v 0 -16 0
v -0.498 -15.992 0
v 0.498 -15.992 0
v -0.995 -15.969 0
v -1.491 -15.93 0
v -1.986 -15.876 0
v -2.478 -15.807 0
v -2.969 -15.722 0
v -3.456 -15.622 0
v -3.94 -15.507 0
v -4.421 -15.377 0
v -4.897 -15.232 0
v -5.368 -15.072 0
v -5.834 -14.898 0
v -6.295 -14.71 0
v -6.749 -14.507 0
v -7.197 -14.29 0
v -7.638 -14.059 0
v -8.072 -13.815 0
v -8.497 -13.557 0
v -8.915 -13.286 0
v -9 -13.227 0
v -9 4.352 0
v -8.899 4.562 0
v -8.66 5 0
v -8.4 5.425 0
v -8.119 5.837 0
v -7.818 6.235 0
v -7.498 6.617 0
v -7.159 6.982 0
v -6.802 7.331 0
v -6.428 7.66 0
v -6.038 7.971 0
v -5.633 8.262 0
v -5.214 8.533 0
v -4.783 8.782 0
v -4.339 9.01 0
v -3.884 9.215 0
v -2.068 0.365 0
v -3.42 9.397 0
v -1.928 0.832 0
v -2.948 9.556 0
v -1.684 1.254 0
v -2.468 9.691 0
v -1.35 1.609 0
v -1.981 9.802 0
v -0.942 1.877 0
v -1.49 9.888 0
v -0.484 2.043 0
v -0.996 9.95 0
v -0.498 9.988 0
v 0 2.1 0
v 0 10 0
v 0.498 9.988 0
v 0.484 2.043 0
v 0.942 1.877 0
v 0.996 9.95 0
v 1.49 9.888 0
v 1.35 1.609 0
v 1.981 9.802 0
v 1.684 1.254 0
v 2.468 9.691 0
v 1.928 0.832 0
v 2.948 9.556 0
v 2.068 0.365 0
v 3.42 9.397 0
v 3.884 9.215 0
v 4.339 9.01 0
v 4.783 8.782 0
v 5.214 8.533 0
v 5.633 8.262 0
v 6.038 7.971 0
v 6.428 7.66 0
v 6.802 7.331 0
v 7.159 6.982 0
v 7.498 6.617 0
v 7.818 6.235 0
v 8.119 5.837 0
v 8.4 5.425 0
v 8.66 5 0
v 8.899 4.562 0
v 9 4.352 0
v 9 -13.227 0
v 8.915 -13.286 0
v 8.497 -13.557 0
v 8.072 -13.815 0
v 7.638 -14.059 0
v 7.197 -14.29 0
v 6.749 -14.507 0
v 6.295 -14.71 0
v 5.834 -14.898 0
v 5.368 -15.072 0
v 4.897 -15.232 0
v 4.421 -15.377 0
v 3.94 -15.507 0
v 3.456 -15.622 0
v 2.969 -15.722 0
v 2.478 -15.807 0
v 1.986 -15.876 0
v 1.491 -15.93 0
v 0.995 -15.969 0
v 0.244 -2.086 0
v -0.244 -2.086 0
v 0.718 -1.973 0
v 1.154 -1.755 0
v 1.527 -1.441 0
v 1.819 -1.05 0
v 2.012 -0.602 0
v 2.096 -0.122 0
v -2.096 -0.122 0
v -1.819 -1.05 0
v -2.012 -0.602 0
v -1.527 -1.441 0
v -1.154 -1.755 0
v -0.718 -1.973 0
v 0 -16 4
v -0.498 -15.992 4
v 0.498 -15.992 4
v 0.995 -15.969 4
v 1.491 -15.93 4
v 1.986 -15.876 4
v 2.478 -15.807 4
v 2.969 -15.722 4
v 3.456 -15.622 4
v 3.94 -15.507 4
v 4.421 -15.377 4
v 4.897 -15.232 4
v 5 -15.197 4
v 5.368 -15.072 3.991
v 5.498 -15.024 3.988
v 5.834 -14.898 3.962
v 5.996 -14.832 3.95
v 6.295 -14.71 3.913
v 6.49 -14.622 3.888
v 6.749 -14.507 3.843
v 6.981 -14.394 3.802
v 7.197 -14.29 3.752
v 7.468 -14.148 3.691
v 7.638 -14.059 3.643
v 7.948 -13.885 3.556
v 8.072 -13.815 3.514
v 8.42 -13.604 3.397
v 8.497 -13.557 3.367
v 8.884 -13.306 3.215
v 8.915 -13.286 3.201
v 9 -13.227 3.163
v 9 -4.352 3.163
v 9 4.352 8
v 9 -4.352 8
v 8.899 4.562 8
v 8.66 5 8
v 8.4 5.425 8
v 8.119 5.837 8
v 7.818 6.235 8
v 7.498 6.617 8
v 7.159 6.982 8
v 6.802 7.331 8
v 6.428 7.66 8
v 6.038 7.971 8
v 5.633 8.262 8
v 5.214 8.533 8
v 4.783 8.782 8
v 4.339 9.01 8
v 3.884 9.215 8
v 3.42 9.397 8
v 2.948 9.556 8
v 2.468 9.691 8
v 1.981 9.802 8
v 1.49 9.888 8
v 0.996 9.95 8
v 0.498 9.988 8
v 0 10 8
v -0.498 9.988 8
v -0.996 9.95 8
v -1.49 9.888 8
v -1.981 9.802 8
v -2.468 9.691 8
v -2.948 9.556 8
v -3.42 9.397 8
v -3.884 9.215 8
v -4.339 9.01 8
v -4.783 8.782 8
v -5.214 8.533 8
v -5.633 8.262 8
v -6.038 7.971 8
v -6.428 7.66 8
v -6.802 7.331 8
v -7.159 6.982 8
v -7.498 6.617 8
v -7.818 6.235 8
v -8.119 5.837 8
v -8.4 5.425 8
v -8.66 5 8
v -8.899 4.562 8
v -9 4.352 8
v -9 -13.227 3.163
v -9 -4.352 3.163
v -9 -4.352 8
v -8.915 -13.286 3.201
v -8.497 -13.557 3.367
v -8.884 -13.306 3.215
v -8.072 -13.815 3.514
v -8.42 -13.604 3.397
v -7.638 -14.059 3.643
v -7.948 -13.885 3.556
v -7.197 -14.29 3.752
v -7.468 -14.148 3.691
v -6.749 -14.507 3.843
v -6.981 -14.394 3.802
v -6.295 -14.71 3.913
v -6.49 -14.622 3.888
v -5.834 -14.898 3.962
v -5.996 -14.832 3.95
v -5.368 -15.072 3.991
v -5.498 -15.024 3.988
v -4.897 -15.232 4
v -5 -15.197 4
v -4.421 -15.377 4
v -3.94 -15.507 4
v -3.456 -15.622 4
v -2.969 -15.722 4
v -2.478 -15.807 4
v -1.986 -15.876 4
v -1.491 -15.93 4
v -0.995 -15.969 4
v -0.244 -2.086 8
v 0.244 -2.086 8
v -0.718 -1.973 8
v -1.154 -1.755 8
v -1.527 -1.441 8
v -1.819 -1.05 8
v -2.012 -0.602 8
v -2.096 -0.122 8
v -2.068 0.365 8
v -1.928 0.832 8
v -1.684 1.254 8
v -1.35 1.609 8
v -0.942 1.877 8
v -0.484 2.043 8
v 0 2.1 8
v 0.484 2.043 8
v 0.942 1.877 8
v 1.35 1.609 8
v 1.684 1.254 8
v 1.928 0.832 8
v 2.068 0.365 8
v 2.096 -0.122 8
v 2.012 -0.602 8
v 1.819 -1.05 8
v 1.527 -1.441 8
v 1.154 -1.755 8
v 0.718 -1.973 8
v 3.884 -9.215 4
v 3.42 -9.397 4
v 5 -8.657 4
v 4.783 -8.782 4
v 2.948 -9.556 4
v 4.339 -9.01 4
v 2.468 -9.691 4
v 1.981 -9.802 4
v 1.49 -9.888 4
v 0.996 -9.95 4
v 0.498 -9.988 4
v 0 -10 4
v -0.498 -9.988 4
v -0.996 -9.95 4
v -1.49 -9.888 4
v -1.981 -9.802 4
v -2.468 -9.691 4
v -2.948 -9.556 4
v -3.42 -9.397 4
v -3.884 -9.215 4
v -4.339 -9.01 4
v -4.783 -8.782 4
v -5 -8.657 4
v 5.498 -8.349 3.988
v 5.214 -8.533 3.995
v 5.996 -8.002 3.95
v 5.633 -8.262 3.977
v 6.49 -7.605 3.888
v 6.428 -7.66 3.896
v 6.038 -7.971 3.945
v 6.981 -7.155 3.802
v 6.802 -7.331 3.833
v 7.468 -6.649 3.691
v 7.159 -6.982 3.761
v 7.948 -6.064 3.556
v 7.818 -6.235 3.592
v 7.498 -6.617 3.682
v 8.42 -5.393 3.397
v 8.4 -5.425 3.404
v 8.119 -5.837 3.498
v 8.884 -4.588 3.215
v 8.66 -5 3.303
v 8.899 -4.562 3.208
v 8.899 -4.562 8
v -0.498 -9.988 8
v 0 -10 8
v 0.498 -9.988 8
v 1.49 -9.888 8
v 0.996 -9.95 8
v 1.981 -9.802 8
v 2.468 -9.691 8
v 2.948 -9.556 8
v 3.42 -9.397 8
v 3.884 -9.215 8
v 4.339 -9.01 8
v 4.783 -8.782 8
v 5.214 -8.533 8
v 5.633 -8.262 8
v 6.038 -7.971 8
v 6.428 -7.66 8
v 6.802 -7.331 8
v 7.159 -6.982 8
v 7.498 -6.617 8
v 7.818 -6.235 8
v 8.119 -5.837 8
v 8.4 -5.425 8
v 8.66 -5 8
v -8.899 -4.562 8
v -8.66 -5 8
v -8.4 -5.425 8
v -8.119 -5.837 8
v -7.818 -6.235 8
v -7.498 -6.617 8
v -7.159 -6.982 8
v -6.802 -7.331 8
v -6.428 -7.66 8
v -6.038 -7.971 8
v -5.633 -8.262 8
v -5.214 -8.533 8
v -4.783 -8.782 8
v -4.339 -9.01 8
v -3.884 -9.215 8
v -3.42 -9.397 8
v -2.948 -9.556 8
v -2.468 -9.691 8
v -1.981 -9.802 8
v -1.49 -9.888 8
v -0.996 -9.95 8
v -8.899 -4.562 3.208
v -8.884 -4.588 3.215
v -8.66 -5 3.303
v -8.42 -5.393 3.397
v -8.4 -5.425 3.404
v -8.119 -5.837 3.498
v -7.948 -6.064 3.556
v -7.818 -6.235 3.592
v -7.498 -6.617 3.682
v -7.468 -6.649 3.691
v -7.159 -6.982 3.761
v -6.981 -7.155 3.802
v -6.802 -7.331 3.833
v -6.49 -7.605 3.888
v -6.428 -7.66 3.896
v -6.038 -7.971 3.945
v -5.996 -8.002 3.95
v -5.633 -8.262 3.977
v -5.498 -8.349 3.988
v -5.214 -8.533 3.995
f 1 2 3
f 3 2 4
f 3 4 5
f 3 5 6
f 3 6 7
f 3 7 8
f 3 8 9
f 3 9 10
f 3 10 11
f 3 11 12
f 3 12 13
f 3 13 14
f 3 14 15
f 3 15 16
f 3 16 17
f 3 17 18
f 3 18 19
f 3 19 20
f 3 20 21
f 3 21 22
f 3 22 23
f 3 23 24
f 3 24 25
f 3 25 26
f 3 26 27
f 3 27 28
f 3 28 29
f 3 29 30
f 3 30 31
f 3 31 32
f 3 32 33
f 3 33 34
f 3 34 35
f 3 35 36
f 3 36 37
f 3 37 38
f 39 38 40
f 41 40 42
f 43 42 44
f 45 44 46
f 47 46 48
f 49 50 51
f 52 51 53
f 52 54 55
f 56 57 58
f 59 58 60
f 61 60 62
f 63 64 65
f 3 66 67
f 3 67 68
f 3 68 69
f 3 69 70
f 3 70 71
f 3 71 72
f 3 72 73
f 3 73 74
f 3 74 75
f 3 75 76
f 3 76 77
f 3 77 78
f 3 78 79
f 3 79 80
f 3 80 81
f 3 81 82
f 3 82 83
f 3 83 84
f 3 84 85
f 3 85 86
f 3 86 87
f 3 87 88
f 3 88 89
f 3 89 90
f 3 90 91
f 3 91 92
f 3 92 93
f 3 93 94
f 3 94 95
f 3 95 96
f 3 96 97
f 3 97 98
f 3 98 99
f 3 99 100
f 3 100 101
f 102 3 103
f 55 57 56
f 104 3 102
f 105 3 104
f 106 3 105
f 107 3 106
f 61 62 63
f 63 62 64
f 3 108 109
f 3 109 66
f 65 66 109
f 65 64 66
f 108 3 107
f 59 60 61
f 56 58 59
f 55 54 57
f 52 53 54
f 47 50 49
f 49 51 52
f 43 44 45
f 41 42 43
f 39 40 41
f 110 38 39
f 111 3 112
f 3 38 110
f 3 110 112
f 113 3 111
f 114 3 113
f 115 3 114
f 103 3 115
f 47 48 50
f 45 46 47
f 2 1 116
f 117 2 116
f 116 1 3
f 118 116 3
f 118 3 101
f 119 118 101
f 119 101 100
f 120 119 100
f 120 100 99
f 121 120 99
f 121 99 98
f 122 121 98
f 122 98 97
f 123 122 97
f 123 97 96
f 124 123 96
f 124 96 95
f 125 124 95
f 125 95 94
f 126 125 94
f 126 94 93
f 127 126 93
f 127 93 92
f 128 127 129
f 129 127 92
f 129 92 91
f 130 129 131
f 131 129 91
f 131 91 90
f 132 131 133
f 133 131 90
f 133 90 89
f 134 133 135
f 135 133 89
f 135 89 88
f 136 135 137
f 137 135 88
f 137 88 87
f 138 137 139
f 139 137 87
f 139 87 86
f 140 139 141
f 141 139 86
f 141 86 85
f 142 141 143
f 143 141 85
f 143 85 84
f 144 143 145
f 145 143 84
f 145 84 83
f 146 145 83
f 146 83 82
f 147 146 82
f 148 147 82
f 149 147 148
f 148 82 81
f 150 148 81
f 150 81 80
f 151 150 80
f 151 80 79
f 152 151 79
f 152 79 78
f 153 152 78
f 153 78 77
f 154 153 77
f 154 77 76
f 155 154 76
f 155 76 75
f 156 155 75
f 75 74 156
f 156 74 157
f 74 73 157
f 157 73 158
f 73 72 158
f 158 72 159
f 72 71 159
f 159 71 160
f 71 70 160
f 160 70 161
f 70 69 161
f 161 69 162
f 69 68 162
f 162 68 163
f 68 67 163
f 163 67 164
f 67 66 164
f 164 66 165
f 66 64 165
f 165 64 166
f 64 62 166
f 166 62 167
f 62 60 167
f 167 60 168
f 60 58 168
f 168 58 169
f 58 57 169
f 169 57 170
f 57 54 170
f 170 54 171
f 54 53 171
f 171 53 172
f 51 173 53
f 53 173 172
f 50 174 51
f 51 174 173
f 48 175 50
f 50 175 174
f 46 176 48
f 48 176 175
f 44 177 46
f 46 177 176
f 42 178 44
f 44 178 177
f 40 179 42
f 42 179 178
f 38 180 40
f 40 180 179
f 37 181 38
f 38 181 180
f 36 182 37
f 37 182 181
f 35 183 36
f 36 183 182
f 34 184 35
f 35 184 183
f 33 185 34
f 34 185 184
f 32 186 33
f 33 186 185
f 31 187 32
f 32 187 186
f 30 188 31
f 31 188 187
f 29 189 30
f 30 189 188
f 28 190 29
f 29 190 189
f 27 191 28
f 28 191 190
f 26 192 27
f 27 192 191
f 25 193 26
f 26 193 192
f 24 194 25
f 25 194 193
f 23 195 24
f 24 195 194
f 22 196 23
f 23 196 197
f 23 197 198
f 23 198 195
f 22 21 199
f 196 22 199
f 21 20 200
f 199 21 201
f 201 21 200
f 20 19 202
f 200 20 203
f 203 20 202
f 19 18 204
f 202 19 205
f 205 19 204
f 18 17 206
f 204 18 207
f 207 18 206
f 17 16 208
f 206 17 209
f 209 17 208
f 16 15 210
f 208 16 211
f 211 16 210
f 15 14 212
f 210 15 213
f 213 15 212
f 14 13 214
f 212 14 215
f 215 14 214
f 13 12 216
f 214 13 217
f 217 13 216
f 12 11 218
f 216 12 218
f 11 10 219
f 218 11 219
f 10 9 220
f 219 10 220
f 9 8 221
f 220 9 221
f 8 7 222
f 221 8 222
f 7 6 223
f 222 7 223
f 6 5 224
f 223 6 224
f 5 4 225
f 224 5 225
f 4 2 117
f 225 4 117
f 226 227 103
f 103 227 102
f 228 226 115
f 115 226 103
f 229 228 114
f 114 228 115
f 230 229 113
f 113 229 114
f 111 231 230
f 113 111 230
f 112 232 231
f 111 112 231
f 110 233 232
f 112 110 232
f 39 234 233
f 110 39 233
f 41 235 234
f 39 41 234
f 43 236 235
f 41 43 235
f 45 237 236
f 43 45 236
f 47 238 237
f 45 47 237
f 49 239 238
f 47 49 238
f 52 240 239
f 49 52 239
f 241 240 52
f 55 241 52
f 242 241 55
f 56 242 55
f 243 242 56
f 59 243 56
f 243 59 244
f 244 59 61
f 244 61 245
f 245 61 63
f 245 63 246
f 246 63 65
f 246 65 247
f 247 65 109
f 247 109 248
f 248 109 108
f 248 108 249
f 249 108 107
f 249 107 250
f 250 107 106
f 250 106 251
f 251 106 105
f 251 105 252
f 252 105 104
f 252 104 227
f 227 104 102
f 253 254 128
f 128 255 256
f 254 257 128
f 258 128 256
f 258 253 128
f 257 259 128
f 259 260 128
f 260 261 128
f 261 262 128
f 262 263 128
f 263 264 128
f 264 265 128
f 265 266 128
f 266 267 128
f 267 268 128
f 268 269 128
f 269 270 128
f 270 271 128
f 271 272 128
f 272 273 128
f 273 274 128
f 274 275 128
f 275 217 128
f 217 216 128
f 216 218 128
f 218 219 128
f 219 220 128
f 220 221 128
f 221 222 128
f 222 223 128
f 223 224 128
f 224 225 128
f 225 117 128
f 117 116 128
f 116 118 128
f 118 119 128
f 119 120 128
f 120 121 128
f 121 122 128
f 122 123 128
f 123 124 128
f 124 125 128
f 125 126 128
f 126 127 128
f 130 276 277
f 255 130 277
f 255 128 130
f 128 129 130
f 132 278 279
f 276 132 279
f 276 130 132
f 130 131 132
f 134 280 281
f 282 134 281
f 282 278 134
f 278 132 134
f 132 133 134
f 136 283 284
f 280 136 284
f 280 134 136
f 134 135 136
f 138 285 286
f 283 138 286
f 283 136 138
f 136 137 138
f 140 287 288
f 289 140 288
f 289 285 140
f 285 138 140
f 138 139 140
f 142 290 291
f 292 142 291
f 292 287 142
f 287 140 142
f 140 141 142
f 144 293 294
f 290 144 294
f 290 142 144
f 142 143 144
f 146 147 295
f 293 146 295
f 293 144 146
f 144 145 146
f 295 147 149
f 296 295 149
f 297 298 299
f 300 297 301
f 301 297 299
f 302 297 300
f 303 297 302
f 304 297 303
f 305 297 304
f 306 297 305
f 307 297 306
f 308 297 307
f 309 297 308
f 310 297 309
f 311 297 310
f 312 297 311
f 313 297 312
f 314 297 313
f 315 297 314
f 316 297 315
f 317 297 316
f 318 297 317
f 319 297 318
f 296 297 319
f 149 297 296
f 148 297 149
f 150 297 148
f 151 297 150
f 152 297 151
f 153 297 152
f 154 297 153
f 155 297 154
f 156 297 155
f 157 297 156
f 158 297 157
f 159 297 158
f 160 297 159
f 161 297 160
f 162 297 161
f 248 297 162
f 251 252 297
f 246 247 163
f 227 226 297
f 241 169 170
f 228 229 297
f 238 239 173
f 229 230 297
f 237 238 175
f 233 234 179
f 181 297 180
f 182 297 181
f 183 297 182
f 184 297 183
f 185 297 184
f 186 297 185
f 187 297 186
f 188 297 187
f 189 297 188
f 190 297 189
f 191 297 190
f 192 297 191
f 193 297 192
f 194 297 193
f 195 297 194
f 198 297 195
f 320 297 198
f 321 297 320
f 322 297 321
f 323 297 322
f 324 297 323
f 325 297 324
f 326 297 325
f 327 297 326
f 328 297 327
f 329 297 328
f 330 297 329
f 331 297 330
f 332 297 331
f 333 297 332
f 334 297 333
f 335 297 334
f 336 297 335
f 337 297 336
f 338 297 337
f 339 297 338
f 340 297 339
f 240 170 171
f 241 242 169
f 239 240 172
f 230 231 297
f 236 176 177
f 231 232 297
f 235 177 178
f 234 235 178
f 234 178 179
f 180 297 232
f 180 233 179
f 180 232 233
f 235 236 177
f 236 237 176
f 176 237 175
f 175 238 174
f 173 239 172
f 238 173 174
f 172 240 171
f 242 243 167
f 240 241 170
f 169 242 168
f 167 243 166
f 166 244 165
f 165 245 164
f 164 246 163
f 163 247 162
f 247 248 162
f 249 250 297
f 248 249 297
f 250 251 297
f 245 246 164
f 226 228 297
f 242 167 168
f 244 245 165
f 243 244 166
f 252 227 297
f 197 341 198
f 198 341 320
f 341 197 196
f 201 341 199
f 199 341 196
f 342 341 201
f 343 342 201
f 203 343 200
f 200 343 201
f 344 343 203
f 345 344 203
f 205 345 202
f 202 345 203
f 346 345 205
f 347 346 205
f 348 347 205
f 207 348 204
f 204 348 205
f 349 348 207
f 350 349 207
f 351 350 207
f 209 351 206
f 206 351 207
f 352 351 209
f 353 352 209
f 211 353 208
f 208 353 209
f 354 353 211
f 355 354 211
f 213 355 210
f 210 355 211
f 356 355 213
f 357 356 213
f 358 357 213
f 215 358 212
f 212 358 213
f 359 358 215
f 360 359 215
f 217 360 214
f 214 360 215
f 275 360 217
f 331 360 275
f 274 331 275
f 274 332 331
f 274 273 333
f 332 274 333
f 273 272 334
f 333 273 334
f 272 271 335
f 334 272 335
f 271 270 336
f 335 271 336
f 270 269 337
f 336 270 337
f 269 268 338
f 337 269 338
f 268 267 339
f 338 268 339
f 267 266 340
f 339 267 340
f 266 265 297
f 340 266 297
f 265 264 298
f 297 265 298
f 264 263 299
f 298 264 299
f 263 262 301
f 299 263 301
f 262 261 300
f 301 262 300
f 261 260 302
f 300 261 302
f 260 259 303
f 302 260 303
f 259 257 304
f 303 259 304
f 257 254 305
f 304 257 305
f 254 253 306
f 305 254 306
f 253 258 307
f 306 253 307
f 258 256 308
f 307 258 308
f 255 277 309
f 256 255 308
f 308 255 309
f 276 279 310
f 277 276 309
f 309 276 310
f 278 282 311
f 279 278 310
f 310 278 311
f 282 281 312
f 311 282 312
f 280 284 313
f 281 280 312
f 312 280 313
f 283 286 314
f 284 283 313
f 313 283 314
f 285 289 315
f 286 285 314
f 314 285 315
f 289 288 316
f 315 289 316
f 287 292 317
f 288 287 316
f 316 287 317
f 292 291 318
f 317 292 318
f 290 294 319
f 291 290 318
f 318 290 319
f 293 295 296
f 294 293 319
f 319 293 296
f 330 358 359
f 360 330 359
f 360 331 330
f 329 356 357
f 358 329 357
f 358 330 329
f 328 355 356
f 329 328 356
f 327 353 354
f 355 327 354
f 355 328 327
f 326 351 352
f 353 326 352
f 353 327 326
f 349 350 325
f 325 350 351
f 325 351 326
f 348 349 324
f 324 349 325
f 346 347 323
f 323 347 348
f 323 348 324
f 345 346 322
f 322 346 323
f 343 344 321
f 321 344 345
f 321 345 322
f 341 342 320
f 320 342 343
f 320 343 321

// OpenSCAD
$fa=1;
$fs=0.5;

module bed_holder() {
	color("Red") rotate([0,-90,90]) difference() {
		intersection() {
			union() {
					hull() for(d=[-1,1]) translate([-6,d*5,0])  cylinder(d=20,h=30);
					rotate([0,90,0]) cylinder(d=20,h=8);
				}
				translate([-5,-9,-50])cube([20,18,100]);
				rotate([0,90,0]) cylinder(r=16,h=20);
			}
		rotate([0,90,0]) cylinder(d=4.2,h=20,center=true);
	}
}

bed_holder();
